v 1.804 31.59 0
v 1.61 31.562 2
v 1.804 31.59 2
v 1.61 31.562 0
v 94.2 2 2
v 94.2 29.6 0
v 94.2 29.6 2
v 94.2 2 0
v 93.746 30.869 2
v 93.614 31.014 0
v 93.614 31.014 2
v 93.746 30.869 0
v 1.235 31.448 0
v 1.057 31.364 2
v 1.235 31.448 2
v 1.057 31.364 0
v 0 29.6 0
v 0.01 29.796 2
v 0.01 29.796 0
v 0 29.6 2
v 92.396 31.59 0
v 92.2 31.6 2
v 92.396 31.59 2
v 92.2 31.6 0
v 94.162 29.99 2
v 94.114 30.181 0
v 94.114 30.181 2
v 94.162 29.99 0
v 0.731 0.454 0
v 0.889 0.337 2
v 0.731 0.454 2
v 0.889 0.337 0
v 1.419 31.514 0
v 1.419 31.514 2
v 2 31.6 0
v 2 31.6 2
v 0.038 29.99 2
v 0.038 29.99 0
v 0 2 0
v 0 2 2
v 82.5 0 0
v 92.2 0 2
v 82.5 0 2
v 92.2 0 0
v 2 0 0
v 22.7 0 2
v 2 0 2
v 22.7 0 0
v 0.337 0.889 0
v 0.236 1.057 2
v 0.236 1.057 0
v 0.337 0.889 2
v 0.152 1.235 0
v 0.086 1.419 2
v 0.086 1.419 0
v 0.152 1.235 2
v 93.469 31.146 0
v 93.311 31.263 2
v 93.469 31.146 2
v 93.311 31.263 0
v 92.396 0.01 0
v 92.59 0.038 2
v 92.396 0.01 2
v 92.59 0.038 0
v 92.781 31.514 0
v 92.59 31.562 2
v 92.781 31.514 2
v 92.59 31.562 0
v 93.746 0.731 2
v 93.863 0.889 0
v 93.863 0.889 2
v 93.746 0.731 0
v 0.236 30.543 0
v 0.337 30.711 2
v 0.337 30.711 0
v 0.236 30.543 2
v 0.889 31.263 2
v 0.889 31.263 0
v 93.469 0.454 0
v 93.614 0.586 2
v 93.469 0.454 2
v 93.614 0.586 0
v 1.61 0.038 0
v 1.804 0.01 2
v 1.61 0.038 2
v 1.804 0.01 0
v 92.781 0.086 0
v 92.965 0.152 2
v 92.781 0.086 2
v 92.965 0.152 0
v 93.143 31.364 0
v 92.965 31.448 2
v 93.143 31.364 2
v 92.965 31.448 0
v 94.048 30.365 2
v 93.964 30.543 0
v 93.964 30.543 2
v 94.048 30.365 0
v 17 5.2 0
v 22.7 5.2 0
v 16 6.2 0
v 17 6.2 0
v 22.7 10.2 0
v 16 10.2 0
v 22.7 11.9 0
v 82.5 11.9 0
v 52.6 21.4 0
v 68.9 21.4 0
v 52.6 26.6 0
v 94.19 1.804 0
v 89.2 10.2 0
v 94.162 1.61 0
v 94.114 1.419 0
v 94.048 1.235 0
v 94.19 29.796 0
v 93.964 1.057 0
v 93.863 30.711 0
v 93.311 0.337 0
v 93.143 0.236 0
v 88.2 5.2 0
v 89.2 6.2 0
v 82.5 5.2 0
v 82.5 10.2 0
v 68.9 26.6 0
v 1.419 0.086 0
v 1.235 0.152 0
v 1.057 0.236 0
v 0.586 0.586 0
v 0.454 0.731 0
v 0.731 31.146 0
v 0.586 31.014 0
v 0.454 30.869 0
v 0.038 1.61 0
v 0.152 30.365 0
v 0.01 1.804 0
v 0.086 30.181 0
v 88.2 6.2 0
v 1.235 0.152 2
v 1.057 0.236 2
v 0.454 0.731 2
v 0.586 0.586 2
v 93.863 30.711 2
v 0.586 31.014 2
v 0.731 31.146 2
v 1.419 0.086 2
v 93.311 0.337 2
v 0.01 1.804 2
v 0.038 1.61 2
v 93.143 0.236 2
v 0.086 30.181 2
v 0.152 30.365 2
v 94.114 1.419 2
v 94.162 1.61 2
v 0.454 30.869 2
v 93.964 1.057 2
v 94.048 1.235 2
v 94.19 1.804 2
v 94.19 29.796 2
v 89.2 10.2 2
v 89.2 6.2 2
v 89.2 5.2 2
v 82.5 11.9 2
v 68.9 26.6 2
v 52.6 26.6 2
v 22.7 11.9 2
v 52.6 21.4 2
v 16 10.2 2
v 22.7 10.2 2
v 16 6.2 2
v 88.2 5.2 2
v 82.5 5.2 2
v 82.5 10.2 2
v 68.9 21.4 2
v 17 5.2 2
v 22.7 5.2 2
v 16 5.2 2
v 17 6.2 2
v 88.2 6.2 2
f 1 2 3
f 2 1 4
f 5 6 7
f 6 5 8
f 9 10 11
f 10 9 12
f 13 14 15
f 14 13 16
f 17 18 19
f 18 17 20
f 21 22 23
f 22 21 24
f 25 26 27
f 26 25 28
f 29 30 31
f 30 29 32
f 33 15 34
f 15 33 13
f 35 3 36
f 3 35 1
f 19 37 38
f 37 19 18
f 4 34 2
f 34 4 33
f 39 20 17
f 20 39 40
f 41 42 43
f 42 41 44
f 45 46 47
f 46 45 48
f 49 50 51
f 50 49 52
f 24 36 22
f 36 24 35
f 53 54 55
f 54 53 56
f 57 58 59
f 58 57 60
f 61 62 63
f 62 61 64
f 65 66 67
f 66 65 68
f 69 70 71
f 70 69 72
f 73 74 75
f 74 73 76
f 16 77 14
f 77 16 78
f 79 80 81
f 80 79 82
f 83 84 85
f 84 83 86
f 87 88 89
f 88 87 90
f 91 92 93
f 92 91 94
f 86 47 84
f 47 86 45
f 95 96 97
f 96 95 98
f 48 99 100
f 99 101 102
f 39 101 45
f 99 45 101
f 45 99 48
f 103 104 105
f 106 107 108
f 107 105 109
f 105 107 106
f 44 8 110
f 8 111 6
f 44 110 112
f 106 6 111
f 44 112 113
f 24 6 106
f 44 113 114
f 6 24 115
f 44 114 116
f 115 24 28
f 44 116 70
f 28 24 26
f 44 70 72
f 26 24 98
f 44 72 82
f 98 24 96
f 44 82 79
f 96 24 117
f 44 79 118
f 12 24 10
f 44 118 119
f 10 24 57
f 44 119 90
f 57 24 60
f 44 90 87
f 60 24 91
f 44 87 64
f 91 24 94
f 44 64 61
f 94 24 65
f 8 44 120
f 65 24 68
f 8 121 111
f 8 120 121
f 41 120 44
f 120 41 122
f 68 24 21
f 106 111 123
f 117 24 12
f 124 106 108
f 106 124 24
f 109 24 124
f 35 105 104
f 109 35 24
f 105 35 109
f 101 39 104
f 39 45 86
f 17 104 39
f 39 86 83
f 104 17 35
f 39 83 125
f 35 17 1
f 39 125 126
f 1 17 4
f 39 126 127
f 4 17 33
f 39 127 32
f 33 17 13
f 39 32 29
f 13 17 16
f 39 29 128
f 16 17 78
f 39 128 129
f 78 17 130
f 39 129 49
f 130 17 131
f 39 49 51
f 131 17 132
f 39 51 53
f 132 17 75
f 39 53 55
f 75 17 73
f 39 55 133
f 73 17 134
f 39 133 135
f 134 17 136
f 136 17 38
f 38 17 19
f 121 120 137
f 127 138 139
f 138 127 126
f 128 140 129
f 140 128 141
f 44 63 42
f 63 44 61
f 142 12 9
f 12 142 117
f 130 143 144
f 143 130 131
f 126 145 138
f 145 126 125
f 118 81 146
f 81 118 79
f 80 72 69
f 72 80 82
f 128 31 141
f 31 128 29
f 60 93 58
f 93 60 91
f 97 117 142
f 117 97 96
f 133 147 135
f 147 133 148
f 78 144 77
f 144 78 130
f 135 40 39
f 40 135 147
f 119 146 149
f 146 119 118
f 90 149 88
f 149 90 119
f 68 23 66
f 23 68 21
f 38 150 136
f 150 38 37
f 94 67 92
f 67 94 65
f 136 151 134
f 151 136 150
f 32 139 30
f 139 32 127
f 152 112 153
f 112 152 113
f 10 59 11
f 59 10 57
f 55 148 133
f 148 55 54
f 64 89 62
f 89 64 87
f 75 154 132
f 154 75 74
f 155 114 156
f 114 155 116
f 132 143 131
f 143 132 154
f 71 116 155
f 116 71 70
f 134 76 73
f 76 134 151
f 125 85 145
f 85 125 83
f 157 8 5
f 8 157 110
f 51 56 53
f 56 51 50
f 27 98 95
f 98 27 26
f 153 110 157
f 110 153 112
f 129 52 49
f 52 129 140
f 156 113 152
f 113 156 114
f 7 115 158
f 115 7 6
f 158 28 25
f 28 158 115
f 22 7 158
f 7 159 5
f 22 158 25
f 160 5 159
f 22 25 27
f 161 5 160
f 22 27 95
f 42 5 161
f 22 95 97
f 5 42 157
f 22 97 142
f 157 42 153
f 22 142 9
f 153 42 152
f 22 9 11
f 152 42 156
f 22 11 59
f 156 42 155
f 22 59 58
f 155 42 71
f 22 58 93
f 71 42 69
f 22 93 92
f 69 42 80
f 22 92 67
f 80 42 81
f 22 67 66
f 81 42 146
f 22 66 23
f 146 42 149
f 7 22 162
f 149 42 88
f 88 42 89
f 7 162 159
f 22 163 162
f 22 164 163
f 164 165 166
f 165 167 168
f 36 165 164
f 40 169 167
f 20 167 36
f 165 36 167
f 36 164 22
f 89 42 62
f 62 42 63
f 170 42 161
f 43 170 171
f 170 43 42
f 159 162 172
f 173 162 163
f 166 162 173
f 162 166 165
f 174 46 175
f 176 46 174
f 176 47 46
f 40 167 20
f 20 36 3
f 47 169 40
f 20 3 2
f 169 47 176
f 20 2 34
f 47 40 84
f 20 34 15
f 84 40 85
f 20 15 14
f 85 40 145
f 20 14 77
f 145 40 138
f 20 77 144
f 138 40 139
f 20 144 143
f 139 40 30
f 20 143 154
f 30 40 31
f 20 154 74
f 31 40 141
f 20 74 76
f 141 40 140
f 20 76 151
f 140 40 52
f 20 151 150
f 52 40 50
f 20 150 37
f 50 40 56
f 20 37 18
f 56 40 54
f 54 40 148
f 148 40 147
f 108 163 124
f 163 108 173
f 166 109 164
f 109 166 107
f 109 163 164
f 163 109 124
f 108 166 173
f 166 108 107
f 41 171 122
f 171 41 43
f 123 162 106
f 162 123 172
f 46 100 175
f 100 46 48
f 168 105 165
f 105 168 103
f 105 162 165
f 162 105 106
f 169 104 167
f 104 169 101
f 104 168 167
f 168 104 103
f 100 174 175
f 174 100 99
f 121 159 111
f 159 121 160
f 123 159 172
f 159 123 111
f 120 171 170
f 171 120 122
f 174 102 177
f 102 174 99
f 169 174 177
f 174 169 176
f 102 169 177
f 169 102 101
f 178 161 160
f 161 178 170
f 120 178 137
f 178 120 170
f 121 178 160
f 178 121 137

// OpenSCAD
/* Sketch of Volkswagen Tool "Schaltlehre" or "Einstelllehre" for the Golf 3.
 * Used to adjust the shift linkage.
 * VW Tool Number: VW-3104
 */
$fn = 64;
length = 94.20;
width = 31.60;
height = 2.00;
offset = height / 2.00;

union() {
    difference() {
        // Groundplate with rounded corners
        difference() {
            radius = 2.00;
            
            // Round corners
            minkowski() {
                // Subtract radius from length and width so that the 
                // groundplate does not get longer and wider because of minkowski
                cube([length - 2 * radius, width - 2 * radius, height]);
                translate([radius, radius, 0.00])
                    cylinder(h=.1, r=radius);
            }
            
            // Cut off excess height generated by above minkoswki
            translate([0.00, 0.00, height])
                minkowski() {
                    cube([length - 2 * radius, width - 2 * radius, height]);
                    translate([radius, radius, 0.00])
                        cylinder(h=.1, r=radius);
                }
        }
        
        // Rectangular cutout at the top right
        translate([length - 25.30 - 16.30, width - 5.00 - 5.20, -offset]) 
            cube([16.30, 5.20, 2 * height]);
        
        // Rectangular cutout at the bottom
        translate([length - 73.20 - 5.00 + 6.70, -offset, -offset])
            cube([73.20 - 2 * 6.70, 11.90 + offset, 2 * height]);
        
        // Further cutouts left and right from the cutout at the bottom
        translate([length - 73.20 - 5.00, 5.20, -offset])
            cube([6.70 + offset, 10.20 - 5.20, 2 * height]);
        translate([length - 5.00 - 6.70 - offset, 5.20, -offset]) 
            cube([6.70 + offset, 10.20 - 5.20, 2 * height]);
    }
    
    // 1mm cubes (see drawing)
    translate([length - 73.20 - 5.00, 5.20, 0.00])
        cube([1.00, 1.00, height]);
    translate([length - 5.00 - 1.00, 5.20, 0.00])
        cube([1.00, 1.00, height]);
}
